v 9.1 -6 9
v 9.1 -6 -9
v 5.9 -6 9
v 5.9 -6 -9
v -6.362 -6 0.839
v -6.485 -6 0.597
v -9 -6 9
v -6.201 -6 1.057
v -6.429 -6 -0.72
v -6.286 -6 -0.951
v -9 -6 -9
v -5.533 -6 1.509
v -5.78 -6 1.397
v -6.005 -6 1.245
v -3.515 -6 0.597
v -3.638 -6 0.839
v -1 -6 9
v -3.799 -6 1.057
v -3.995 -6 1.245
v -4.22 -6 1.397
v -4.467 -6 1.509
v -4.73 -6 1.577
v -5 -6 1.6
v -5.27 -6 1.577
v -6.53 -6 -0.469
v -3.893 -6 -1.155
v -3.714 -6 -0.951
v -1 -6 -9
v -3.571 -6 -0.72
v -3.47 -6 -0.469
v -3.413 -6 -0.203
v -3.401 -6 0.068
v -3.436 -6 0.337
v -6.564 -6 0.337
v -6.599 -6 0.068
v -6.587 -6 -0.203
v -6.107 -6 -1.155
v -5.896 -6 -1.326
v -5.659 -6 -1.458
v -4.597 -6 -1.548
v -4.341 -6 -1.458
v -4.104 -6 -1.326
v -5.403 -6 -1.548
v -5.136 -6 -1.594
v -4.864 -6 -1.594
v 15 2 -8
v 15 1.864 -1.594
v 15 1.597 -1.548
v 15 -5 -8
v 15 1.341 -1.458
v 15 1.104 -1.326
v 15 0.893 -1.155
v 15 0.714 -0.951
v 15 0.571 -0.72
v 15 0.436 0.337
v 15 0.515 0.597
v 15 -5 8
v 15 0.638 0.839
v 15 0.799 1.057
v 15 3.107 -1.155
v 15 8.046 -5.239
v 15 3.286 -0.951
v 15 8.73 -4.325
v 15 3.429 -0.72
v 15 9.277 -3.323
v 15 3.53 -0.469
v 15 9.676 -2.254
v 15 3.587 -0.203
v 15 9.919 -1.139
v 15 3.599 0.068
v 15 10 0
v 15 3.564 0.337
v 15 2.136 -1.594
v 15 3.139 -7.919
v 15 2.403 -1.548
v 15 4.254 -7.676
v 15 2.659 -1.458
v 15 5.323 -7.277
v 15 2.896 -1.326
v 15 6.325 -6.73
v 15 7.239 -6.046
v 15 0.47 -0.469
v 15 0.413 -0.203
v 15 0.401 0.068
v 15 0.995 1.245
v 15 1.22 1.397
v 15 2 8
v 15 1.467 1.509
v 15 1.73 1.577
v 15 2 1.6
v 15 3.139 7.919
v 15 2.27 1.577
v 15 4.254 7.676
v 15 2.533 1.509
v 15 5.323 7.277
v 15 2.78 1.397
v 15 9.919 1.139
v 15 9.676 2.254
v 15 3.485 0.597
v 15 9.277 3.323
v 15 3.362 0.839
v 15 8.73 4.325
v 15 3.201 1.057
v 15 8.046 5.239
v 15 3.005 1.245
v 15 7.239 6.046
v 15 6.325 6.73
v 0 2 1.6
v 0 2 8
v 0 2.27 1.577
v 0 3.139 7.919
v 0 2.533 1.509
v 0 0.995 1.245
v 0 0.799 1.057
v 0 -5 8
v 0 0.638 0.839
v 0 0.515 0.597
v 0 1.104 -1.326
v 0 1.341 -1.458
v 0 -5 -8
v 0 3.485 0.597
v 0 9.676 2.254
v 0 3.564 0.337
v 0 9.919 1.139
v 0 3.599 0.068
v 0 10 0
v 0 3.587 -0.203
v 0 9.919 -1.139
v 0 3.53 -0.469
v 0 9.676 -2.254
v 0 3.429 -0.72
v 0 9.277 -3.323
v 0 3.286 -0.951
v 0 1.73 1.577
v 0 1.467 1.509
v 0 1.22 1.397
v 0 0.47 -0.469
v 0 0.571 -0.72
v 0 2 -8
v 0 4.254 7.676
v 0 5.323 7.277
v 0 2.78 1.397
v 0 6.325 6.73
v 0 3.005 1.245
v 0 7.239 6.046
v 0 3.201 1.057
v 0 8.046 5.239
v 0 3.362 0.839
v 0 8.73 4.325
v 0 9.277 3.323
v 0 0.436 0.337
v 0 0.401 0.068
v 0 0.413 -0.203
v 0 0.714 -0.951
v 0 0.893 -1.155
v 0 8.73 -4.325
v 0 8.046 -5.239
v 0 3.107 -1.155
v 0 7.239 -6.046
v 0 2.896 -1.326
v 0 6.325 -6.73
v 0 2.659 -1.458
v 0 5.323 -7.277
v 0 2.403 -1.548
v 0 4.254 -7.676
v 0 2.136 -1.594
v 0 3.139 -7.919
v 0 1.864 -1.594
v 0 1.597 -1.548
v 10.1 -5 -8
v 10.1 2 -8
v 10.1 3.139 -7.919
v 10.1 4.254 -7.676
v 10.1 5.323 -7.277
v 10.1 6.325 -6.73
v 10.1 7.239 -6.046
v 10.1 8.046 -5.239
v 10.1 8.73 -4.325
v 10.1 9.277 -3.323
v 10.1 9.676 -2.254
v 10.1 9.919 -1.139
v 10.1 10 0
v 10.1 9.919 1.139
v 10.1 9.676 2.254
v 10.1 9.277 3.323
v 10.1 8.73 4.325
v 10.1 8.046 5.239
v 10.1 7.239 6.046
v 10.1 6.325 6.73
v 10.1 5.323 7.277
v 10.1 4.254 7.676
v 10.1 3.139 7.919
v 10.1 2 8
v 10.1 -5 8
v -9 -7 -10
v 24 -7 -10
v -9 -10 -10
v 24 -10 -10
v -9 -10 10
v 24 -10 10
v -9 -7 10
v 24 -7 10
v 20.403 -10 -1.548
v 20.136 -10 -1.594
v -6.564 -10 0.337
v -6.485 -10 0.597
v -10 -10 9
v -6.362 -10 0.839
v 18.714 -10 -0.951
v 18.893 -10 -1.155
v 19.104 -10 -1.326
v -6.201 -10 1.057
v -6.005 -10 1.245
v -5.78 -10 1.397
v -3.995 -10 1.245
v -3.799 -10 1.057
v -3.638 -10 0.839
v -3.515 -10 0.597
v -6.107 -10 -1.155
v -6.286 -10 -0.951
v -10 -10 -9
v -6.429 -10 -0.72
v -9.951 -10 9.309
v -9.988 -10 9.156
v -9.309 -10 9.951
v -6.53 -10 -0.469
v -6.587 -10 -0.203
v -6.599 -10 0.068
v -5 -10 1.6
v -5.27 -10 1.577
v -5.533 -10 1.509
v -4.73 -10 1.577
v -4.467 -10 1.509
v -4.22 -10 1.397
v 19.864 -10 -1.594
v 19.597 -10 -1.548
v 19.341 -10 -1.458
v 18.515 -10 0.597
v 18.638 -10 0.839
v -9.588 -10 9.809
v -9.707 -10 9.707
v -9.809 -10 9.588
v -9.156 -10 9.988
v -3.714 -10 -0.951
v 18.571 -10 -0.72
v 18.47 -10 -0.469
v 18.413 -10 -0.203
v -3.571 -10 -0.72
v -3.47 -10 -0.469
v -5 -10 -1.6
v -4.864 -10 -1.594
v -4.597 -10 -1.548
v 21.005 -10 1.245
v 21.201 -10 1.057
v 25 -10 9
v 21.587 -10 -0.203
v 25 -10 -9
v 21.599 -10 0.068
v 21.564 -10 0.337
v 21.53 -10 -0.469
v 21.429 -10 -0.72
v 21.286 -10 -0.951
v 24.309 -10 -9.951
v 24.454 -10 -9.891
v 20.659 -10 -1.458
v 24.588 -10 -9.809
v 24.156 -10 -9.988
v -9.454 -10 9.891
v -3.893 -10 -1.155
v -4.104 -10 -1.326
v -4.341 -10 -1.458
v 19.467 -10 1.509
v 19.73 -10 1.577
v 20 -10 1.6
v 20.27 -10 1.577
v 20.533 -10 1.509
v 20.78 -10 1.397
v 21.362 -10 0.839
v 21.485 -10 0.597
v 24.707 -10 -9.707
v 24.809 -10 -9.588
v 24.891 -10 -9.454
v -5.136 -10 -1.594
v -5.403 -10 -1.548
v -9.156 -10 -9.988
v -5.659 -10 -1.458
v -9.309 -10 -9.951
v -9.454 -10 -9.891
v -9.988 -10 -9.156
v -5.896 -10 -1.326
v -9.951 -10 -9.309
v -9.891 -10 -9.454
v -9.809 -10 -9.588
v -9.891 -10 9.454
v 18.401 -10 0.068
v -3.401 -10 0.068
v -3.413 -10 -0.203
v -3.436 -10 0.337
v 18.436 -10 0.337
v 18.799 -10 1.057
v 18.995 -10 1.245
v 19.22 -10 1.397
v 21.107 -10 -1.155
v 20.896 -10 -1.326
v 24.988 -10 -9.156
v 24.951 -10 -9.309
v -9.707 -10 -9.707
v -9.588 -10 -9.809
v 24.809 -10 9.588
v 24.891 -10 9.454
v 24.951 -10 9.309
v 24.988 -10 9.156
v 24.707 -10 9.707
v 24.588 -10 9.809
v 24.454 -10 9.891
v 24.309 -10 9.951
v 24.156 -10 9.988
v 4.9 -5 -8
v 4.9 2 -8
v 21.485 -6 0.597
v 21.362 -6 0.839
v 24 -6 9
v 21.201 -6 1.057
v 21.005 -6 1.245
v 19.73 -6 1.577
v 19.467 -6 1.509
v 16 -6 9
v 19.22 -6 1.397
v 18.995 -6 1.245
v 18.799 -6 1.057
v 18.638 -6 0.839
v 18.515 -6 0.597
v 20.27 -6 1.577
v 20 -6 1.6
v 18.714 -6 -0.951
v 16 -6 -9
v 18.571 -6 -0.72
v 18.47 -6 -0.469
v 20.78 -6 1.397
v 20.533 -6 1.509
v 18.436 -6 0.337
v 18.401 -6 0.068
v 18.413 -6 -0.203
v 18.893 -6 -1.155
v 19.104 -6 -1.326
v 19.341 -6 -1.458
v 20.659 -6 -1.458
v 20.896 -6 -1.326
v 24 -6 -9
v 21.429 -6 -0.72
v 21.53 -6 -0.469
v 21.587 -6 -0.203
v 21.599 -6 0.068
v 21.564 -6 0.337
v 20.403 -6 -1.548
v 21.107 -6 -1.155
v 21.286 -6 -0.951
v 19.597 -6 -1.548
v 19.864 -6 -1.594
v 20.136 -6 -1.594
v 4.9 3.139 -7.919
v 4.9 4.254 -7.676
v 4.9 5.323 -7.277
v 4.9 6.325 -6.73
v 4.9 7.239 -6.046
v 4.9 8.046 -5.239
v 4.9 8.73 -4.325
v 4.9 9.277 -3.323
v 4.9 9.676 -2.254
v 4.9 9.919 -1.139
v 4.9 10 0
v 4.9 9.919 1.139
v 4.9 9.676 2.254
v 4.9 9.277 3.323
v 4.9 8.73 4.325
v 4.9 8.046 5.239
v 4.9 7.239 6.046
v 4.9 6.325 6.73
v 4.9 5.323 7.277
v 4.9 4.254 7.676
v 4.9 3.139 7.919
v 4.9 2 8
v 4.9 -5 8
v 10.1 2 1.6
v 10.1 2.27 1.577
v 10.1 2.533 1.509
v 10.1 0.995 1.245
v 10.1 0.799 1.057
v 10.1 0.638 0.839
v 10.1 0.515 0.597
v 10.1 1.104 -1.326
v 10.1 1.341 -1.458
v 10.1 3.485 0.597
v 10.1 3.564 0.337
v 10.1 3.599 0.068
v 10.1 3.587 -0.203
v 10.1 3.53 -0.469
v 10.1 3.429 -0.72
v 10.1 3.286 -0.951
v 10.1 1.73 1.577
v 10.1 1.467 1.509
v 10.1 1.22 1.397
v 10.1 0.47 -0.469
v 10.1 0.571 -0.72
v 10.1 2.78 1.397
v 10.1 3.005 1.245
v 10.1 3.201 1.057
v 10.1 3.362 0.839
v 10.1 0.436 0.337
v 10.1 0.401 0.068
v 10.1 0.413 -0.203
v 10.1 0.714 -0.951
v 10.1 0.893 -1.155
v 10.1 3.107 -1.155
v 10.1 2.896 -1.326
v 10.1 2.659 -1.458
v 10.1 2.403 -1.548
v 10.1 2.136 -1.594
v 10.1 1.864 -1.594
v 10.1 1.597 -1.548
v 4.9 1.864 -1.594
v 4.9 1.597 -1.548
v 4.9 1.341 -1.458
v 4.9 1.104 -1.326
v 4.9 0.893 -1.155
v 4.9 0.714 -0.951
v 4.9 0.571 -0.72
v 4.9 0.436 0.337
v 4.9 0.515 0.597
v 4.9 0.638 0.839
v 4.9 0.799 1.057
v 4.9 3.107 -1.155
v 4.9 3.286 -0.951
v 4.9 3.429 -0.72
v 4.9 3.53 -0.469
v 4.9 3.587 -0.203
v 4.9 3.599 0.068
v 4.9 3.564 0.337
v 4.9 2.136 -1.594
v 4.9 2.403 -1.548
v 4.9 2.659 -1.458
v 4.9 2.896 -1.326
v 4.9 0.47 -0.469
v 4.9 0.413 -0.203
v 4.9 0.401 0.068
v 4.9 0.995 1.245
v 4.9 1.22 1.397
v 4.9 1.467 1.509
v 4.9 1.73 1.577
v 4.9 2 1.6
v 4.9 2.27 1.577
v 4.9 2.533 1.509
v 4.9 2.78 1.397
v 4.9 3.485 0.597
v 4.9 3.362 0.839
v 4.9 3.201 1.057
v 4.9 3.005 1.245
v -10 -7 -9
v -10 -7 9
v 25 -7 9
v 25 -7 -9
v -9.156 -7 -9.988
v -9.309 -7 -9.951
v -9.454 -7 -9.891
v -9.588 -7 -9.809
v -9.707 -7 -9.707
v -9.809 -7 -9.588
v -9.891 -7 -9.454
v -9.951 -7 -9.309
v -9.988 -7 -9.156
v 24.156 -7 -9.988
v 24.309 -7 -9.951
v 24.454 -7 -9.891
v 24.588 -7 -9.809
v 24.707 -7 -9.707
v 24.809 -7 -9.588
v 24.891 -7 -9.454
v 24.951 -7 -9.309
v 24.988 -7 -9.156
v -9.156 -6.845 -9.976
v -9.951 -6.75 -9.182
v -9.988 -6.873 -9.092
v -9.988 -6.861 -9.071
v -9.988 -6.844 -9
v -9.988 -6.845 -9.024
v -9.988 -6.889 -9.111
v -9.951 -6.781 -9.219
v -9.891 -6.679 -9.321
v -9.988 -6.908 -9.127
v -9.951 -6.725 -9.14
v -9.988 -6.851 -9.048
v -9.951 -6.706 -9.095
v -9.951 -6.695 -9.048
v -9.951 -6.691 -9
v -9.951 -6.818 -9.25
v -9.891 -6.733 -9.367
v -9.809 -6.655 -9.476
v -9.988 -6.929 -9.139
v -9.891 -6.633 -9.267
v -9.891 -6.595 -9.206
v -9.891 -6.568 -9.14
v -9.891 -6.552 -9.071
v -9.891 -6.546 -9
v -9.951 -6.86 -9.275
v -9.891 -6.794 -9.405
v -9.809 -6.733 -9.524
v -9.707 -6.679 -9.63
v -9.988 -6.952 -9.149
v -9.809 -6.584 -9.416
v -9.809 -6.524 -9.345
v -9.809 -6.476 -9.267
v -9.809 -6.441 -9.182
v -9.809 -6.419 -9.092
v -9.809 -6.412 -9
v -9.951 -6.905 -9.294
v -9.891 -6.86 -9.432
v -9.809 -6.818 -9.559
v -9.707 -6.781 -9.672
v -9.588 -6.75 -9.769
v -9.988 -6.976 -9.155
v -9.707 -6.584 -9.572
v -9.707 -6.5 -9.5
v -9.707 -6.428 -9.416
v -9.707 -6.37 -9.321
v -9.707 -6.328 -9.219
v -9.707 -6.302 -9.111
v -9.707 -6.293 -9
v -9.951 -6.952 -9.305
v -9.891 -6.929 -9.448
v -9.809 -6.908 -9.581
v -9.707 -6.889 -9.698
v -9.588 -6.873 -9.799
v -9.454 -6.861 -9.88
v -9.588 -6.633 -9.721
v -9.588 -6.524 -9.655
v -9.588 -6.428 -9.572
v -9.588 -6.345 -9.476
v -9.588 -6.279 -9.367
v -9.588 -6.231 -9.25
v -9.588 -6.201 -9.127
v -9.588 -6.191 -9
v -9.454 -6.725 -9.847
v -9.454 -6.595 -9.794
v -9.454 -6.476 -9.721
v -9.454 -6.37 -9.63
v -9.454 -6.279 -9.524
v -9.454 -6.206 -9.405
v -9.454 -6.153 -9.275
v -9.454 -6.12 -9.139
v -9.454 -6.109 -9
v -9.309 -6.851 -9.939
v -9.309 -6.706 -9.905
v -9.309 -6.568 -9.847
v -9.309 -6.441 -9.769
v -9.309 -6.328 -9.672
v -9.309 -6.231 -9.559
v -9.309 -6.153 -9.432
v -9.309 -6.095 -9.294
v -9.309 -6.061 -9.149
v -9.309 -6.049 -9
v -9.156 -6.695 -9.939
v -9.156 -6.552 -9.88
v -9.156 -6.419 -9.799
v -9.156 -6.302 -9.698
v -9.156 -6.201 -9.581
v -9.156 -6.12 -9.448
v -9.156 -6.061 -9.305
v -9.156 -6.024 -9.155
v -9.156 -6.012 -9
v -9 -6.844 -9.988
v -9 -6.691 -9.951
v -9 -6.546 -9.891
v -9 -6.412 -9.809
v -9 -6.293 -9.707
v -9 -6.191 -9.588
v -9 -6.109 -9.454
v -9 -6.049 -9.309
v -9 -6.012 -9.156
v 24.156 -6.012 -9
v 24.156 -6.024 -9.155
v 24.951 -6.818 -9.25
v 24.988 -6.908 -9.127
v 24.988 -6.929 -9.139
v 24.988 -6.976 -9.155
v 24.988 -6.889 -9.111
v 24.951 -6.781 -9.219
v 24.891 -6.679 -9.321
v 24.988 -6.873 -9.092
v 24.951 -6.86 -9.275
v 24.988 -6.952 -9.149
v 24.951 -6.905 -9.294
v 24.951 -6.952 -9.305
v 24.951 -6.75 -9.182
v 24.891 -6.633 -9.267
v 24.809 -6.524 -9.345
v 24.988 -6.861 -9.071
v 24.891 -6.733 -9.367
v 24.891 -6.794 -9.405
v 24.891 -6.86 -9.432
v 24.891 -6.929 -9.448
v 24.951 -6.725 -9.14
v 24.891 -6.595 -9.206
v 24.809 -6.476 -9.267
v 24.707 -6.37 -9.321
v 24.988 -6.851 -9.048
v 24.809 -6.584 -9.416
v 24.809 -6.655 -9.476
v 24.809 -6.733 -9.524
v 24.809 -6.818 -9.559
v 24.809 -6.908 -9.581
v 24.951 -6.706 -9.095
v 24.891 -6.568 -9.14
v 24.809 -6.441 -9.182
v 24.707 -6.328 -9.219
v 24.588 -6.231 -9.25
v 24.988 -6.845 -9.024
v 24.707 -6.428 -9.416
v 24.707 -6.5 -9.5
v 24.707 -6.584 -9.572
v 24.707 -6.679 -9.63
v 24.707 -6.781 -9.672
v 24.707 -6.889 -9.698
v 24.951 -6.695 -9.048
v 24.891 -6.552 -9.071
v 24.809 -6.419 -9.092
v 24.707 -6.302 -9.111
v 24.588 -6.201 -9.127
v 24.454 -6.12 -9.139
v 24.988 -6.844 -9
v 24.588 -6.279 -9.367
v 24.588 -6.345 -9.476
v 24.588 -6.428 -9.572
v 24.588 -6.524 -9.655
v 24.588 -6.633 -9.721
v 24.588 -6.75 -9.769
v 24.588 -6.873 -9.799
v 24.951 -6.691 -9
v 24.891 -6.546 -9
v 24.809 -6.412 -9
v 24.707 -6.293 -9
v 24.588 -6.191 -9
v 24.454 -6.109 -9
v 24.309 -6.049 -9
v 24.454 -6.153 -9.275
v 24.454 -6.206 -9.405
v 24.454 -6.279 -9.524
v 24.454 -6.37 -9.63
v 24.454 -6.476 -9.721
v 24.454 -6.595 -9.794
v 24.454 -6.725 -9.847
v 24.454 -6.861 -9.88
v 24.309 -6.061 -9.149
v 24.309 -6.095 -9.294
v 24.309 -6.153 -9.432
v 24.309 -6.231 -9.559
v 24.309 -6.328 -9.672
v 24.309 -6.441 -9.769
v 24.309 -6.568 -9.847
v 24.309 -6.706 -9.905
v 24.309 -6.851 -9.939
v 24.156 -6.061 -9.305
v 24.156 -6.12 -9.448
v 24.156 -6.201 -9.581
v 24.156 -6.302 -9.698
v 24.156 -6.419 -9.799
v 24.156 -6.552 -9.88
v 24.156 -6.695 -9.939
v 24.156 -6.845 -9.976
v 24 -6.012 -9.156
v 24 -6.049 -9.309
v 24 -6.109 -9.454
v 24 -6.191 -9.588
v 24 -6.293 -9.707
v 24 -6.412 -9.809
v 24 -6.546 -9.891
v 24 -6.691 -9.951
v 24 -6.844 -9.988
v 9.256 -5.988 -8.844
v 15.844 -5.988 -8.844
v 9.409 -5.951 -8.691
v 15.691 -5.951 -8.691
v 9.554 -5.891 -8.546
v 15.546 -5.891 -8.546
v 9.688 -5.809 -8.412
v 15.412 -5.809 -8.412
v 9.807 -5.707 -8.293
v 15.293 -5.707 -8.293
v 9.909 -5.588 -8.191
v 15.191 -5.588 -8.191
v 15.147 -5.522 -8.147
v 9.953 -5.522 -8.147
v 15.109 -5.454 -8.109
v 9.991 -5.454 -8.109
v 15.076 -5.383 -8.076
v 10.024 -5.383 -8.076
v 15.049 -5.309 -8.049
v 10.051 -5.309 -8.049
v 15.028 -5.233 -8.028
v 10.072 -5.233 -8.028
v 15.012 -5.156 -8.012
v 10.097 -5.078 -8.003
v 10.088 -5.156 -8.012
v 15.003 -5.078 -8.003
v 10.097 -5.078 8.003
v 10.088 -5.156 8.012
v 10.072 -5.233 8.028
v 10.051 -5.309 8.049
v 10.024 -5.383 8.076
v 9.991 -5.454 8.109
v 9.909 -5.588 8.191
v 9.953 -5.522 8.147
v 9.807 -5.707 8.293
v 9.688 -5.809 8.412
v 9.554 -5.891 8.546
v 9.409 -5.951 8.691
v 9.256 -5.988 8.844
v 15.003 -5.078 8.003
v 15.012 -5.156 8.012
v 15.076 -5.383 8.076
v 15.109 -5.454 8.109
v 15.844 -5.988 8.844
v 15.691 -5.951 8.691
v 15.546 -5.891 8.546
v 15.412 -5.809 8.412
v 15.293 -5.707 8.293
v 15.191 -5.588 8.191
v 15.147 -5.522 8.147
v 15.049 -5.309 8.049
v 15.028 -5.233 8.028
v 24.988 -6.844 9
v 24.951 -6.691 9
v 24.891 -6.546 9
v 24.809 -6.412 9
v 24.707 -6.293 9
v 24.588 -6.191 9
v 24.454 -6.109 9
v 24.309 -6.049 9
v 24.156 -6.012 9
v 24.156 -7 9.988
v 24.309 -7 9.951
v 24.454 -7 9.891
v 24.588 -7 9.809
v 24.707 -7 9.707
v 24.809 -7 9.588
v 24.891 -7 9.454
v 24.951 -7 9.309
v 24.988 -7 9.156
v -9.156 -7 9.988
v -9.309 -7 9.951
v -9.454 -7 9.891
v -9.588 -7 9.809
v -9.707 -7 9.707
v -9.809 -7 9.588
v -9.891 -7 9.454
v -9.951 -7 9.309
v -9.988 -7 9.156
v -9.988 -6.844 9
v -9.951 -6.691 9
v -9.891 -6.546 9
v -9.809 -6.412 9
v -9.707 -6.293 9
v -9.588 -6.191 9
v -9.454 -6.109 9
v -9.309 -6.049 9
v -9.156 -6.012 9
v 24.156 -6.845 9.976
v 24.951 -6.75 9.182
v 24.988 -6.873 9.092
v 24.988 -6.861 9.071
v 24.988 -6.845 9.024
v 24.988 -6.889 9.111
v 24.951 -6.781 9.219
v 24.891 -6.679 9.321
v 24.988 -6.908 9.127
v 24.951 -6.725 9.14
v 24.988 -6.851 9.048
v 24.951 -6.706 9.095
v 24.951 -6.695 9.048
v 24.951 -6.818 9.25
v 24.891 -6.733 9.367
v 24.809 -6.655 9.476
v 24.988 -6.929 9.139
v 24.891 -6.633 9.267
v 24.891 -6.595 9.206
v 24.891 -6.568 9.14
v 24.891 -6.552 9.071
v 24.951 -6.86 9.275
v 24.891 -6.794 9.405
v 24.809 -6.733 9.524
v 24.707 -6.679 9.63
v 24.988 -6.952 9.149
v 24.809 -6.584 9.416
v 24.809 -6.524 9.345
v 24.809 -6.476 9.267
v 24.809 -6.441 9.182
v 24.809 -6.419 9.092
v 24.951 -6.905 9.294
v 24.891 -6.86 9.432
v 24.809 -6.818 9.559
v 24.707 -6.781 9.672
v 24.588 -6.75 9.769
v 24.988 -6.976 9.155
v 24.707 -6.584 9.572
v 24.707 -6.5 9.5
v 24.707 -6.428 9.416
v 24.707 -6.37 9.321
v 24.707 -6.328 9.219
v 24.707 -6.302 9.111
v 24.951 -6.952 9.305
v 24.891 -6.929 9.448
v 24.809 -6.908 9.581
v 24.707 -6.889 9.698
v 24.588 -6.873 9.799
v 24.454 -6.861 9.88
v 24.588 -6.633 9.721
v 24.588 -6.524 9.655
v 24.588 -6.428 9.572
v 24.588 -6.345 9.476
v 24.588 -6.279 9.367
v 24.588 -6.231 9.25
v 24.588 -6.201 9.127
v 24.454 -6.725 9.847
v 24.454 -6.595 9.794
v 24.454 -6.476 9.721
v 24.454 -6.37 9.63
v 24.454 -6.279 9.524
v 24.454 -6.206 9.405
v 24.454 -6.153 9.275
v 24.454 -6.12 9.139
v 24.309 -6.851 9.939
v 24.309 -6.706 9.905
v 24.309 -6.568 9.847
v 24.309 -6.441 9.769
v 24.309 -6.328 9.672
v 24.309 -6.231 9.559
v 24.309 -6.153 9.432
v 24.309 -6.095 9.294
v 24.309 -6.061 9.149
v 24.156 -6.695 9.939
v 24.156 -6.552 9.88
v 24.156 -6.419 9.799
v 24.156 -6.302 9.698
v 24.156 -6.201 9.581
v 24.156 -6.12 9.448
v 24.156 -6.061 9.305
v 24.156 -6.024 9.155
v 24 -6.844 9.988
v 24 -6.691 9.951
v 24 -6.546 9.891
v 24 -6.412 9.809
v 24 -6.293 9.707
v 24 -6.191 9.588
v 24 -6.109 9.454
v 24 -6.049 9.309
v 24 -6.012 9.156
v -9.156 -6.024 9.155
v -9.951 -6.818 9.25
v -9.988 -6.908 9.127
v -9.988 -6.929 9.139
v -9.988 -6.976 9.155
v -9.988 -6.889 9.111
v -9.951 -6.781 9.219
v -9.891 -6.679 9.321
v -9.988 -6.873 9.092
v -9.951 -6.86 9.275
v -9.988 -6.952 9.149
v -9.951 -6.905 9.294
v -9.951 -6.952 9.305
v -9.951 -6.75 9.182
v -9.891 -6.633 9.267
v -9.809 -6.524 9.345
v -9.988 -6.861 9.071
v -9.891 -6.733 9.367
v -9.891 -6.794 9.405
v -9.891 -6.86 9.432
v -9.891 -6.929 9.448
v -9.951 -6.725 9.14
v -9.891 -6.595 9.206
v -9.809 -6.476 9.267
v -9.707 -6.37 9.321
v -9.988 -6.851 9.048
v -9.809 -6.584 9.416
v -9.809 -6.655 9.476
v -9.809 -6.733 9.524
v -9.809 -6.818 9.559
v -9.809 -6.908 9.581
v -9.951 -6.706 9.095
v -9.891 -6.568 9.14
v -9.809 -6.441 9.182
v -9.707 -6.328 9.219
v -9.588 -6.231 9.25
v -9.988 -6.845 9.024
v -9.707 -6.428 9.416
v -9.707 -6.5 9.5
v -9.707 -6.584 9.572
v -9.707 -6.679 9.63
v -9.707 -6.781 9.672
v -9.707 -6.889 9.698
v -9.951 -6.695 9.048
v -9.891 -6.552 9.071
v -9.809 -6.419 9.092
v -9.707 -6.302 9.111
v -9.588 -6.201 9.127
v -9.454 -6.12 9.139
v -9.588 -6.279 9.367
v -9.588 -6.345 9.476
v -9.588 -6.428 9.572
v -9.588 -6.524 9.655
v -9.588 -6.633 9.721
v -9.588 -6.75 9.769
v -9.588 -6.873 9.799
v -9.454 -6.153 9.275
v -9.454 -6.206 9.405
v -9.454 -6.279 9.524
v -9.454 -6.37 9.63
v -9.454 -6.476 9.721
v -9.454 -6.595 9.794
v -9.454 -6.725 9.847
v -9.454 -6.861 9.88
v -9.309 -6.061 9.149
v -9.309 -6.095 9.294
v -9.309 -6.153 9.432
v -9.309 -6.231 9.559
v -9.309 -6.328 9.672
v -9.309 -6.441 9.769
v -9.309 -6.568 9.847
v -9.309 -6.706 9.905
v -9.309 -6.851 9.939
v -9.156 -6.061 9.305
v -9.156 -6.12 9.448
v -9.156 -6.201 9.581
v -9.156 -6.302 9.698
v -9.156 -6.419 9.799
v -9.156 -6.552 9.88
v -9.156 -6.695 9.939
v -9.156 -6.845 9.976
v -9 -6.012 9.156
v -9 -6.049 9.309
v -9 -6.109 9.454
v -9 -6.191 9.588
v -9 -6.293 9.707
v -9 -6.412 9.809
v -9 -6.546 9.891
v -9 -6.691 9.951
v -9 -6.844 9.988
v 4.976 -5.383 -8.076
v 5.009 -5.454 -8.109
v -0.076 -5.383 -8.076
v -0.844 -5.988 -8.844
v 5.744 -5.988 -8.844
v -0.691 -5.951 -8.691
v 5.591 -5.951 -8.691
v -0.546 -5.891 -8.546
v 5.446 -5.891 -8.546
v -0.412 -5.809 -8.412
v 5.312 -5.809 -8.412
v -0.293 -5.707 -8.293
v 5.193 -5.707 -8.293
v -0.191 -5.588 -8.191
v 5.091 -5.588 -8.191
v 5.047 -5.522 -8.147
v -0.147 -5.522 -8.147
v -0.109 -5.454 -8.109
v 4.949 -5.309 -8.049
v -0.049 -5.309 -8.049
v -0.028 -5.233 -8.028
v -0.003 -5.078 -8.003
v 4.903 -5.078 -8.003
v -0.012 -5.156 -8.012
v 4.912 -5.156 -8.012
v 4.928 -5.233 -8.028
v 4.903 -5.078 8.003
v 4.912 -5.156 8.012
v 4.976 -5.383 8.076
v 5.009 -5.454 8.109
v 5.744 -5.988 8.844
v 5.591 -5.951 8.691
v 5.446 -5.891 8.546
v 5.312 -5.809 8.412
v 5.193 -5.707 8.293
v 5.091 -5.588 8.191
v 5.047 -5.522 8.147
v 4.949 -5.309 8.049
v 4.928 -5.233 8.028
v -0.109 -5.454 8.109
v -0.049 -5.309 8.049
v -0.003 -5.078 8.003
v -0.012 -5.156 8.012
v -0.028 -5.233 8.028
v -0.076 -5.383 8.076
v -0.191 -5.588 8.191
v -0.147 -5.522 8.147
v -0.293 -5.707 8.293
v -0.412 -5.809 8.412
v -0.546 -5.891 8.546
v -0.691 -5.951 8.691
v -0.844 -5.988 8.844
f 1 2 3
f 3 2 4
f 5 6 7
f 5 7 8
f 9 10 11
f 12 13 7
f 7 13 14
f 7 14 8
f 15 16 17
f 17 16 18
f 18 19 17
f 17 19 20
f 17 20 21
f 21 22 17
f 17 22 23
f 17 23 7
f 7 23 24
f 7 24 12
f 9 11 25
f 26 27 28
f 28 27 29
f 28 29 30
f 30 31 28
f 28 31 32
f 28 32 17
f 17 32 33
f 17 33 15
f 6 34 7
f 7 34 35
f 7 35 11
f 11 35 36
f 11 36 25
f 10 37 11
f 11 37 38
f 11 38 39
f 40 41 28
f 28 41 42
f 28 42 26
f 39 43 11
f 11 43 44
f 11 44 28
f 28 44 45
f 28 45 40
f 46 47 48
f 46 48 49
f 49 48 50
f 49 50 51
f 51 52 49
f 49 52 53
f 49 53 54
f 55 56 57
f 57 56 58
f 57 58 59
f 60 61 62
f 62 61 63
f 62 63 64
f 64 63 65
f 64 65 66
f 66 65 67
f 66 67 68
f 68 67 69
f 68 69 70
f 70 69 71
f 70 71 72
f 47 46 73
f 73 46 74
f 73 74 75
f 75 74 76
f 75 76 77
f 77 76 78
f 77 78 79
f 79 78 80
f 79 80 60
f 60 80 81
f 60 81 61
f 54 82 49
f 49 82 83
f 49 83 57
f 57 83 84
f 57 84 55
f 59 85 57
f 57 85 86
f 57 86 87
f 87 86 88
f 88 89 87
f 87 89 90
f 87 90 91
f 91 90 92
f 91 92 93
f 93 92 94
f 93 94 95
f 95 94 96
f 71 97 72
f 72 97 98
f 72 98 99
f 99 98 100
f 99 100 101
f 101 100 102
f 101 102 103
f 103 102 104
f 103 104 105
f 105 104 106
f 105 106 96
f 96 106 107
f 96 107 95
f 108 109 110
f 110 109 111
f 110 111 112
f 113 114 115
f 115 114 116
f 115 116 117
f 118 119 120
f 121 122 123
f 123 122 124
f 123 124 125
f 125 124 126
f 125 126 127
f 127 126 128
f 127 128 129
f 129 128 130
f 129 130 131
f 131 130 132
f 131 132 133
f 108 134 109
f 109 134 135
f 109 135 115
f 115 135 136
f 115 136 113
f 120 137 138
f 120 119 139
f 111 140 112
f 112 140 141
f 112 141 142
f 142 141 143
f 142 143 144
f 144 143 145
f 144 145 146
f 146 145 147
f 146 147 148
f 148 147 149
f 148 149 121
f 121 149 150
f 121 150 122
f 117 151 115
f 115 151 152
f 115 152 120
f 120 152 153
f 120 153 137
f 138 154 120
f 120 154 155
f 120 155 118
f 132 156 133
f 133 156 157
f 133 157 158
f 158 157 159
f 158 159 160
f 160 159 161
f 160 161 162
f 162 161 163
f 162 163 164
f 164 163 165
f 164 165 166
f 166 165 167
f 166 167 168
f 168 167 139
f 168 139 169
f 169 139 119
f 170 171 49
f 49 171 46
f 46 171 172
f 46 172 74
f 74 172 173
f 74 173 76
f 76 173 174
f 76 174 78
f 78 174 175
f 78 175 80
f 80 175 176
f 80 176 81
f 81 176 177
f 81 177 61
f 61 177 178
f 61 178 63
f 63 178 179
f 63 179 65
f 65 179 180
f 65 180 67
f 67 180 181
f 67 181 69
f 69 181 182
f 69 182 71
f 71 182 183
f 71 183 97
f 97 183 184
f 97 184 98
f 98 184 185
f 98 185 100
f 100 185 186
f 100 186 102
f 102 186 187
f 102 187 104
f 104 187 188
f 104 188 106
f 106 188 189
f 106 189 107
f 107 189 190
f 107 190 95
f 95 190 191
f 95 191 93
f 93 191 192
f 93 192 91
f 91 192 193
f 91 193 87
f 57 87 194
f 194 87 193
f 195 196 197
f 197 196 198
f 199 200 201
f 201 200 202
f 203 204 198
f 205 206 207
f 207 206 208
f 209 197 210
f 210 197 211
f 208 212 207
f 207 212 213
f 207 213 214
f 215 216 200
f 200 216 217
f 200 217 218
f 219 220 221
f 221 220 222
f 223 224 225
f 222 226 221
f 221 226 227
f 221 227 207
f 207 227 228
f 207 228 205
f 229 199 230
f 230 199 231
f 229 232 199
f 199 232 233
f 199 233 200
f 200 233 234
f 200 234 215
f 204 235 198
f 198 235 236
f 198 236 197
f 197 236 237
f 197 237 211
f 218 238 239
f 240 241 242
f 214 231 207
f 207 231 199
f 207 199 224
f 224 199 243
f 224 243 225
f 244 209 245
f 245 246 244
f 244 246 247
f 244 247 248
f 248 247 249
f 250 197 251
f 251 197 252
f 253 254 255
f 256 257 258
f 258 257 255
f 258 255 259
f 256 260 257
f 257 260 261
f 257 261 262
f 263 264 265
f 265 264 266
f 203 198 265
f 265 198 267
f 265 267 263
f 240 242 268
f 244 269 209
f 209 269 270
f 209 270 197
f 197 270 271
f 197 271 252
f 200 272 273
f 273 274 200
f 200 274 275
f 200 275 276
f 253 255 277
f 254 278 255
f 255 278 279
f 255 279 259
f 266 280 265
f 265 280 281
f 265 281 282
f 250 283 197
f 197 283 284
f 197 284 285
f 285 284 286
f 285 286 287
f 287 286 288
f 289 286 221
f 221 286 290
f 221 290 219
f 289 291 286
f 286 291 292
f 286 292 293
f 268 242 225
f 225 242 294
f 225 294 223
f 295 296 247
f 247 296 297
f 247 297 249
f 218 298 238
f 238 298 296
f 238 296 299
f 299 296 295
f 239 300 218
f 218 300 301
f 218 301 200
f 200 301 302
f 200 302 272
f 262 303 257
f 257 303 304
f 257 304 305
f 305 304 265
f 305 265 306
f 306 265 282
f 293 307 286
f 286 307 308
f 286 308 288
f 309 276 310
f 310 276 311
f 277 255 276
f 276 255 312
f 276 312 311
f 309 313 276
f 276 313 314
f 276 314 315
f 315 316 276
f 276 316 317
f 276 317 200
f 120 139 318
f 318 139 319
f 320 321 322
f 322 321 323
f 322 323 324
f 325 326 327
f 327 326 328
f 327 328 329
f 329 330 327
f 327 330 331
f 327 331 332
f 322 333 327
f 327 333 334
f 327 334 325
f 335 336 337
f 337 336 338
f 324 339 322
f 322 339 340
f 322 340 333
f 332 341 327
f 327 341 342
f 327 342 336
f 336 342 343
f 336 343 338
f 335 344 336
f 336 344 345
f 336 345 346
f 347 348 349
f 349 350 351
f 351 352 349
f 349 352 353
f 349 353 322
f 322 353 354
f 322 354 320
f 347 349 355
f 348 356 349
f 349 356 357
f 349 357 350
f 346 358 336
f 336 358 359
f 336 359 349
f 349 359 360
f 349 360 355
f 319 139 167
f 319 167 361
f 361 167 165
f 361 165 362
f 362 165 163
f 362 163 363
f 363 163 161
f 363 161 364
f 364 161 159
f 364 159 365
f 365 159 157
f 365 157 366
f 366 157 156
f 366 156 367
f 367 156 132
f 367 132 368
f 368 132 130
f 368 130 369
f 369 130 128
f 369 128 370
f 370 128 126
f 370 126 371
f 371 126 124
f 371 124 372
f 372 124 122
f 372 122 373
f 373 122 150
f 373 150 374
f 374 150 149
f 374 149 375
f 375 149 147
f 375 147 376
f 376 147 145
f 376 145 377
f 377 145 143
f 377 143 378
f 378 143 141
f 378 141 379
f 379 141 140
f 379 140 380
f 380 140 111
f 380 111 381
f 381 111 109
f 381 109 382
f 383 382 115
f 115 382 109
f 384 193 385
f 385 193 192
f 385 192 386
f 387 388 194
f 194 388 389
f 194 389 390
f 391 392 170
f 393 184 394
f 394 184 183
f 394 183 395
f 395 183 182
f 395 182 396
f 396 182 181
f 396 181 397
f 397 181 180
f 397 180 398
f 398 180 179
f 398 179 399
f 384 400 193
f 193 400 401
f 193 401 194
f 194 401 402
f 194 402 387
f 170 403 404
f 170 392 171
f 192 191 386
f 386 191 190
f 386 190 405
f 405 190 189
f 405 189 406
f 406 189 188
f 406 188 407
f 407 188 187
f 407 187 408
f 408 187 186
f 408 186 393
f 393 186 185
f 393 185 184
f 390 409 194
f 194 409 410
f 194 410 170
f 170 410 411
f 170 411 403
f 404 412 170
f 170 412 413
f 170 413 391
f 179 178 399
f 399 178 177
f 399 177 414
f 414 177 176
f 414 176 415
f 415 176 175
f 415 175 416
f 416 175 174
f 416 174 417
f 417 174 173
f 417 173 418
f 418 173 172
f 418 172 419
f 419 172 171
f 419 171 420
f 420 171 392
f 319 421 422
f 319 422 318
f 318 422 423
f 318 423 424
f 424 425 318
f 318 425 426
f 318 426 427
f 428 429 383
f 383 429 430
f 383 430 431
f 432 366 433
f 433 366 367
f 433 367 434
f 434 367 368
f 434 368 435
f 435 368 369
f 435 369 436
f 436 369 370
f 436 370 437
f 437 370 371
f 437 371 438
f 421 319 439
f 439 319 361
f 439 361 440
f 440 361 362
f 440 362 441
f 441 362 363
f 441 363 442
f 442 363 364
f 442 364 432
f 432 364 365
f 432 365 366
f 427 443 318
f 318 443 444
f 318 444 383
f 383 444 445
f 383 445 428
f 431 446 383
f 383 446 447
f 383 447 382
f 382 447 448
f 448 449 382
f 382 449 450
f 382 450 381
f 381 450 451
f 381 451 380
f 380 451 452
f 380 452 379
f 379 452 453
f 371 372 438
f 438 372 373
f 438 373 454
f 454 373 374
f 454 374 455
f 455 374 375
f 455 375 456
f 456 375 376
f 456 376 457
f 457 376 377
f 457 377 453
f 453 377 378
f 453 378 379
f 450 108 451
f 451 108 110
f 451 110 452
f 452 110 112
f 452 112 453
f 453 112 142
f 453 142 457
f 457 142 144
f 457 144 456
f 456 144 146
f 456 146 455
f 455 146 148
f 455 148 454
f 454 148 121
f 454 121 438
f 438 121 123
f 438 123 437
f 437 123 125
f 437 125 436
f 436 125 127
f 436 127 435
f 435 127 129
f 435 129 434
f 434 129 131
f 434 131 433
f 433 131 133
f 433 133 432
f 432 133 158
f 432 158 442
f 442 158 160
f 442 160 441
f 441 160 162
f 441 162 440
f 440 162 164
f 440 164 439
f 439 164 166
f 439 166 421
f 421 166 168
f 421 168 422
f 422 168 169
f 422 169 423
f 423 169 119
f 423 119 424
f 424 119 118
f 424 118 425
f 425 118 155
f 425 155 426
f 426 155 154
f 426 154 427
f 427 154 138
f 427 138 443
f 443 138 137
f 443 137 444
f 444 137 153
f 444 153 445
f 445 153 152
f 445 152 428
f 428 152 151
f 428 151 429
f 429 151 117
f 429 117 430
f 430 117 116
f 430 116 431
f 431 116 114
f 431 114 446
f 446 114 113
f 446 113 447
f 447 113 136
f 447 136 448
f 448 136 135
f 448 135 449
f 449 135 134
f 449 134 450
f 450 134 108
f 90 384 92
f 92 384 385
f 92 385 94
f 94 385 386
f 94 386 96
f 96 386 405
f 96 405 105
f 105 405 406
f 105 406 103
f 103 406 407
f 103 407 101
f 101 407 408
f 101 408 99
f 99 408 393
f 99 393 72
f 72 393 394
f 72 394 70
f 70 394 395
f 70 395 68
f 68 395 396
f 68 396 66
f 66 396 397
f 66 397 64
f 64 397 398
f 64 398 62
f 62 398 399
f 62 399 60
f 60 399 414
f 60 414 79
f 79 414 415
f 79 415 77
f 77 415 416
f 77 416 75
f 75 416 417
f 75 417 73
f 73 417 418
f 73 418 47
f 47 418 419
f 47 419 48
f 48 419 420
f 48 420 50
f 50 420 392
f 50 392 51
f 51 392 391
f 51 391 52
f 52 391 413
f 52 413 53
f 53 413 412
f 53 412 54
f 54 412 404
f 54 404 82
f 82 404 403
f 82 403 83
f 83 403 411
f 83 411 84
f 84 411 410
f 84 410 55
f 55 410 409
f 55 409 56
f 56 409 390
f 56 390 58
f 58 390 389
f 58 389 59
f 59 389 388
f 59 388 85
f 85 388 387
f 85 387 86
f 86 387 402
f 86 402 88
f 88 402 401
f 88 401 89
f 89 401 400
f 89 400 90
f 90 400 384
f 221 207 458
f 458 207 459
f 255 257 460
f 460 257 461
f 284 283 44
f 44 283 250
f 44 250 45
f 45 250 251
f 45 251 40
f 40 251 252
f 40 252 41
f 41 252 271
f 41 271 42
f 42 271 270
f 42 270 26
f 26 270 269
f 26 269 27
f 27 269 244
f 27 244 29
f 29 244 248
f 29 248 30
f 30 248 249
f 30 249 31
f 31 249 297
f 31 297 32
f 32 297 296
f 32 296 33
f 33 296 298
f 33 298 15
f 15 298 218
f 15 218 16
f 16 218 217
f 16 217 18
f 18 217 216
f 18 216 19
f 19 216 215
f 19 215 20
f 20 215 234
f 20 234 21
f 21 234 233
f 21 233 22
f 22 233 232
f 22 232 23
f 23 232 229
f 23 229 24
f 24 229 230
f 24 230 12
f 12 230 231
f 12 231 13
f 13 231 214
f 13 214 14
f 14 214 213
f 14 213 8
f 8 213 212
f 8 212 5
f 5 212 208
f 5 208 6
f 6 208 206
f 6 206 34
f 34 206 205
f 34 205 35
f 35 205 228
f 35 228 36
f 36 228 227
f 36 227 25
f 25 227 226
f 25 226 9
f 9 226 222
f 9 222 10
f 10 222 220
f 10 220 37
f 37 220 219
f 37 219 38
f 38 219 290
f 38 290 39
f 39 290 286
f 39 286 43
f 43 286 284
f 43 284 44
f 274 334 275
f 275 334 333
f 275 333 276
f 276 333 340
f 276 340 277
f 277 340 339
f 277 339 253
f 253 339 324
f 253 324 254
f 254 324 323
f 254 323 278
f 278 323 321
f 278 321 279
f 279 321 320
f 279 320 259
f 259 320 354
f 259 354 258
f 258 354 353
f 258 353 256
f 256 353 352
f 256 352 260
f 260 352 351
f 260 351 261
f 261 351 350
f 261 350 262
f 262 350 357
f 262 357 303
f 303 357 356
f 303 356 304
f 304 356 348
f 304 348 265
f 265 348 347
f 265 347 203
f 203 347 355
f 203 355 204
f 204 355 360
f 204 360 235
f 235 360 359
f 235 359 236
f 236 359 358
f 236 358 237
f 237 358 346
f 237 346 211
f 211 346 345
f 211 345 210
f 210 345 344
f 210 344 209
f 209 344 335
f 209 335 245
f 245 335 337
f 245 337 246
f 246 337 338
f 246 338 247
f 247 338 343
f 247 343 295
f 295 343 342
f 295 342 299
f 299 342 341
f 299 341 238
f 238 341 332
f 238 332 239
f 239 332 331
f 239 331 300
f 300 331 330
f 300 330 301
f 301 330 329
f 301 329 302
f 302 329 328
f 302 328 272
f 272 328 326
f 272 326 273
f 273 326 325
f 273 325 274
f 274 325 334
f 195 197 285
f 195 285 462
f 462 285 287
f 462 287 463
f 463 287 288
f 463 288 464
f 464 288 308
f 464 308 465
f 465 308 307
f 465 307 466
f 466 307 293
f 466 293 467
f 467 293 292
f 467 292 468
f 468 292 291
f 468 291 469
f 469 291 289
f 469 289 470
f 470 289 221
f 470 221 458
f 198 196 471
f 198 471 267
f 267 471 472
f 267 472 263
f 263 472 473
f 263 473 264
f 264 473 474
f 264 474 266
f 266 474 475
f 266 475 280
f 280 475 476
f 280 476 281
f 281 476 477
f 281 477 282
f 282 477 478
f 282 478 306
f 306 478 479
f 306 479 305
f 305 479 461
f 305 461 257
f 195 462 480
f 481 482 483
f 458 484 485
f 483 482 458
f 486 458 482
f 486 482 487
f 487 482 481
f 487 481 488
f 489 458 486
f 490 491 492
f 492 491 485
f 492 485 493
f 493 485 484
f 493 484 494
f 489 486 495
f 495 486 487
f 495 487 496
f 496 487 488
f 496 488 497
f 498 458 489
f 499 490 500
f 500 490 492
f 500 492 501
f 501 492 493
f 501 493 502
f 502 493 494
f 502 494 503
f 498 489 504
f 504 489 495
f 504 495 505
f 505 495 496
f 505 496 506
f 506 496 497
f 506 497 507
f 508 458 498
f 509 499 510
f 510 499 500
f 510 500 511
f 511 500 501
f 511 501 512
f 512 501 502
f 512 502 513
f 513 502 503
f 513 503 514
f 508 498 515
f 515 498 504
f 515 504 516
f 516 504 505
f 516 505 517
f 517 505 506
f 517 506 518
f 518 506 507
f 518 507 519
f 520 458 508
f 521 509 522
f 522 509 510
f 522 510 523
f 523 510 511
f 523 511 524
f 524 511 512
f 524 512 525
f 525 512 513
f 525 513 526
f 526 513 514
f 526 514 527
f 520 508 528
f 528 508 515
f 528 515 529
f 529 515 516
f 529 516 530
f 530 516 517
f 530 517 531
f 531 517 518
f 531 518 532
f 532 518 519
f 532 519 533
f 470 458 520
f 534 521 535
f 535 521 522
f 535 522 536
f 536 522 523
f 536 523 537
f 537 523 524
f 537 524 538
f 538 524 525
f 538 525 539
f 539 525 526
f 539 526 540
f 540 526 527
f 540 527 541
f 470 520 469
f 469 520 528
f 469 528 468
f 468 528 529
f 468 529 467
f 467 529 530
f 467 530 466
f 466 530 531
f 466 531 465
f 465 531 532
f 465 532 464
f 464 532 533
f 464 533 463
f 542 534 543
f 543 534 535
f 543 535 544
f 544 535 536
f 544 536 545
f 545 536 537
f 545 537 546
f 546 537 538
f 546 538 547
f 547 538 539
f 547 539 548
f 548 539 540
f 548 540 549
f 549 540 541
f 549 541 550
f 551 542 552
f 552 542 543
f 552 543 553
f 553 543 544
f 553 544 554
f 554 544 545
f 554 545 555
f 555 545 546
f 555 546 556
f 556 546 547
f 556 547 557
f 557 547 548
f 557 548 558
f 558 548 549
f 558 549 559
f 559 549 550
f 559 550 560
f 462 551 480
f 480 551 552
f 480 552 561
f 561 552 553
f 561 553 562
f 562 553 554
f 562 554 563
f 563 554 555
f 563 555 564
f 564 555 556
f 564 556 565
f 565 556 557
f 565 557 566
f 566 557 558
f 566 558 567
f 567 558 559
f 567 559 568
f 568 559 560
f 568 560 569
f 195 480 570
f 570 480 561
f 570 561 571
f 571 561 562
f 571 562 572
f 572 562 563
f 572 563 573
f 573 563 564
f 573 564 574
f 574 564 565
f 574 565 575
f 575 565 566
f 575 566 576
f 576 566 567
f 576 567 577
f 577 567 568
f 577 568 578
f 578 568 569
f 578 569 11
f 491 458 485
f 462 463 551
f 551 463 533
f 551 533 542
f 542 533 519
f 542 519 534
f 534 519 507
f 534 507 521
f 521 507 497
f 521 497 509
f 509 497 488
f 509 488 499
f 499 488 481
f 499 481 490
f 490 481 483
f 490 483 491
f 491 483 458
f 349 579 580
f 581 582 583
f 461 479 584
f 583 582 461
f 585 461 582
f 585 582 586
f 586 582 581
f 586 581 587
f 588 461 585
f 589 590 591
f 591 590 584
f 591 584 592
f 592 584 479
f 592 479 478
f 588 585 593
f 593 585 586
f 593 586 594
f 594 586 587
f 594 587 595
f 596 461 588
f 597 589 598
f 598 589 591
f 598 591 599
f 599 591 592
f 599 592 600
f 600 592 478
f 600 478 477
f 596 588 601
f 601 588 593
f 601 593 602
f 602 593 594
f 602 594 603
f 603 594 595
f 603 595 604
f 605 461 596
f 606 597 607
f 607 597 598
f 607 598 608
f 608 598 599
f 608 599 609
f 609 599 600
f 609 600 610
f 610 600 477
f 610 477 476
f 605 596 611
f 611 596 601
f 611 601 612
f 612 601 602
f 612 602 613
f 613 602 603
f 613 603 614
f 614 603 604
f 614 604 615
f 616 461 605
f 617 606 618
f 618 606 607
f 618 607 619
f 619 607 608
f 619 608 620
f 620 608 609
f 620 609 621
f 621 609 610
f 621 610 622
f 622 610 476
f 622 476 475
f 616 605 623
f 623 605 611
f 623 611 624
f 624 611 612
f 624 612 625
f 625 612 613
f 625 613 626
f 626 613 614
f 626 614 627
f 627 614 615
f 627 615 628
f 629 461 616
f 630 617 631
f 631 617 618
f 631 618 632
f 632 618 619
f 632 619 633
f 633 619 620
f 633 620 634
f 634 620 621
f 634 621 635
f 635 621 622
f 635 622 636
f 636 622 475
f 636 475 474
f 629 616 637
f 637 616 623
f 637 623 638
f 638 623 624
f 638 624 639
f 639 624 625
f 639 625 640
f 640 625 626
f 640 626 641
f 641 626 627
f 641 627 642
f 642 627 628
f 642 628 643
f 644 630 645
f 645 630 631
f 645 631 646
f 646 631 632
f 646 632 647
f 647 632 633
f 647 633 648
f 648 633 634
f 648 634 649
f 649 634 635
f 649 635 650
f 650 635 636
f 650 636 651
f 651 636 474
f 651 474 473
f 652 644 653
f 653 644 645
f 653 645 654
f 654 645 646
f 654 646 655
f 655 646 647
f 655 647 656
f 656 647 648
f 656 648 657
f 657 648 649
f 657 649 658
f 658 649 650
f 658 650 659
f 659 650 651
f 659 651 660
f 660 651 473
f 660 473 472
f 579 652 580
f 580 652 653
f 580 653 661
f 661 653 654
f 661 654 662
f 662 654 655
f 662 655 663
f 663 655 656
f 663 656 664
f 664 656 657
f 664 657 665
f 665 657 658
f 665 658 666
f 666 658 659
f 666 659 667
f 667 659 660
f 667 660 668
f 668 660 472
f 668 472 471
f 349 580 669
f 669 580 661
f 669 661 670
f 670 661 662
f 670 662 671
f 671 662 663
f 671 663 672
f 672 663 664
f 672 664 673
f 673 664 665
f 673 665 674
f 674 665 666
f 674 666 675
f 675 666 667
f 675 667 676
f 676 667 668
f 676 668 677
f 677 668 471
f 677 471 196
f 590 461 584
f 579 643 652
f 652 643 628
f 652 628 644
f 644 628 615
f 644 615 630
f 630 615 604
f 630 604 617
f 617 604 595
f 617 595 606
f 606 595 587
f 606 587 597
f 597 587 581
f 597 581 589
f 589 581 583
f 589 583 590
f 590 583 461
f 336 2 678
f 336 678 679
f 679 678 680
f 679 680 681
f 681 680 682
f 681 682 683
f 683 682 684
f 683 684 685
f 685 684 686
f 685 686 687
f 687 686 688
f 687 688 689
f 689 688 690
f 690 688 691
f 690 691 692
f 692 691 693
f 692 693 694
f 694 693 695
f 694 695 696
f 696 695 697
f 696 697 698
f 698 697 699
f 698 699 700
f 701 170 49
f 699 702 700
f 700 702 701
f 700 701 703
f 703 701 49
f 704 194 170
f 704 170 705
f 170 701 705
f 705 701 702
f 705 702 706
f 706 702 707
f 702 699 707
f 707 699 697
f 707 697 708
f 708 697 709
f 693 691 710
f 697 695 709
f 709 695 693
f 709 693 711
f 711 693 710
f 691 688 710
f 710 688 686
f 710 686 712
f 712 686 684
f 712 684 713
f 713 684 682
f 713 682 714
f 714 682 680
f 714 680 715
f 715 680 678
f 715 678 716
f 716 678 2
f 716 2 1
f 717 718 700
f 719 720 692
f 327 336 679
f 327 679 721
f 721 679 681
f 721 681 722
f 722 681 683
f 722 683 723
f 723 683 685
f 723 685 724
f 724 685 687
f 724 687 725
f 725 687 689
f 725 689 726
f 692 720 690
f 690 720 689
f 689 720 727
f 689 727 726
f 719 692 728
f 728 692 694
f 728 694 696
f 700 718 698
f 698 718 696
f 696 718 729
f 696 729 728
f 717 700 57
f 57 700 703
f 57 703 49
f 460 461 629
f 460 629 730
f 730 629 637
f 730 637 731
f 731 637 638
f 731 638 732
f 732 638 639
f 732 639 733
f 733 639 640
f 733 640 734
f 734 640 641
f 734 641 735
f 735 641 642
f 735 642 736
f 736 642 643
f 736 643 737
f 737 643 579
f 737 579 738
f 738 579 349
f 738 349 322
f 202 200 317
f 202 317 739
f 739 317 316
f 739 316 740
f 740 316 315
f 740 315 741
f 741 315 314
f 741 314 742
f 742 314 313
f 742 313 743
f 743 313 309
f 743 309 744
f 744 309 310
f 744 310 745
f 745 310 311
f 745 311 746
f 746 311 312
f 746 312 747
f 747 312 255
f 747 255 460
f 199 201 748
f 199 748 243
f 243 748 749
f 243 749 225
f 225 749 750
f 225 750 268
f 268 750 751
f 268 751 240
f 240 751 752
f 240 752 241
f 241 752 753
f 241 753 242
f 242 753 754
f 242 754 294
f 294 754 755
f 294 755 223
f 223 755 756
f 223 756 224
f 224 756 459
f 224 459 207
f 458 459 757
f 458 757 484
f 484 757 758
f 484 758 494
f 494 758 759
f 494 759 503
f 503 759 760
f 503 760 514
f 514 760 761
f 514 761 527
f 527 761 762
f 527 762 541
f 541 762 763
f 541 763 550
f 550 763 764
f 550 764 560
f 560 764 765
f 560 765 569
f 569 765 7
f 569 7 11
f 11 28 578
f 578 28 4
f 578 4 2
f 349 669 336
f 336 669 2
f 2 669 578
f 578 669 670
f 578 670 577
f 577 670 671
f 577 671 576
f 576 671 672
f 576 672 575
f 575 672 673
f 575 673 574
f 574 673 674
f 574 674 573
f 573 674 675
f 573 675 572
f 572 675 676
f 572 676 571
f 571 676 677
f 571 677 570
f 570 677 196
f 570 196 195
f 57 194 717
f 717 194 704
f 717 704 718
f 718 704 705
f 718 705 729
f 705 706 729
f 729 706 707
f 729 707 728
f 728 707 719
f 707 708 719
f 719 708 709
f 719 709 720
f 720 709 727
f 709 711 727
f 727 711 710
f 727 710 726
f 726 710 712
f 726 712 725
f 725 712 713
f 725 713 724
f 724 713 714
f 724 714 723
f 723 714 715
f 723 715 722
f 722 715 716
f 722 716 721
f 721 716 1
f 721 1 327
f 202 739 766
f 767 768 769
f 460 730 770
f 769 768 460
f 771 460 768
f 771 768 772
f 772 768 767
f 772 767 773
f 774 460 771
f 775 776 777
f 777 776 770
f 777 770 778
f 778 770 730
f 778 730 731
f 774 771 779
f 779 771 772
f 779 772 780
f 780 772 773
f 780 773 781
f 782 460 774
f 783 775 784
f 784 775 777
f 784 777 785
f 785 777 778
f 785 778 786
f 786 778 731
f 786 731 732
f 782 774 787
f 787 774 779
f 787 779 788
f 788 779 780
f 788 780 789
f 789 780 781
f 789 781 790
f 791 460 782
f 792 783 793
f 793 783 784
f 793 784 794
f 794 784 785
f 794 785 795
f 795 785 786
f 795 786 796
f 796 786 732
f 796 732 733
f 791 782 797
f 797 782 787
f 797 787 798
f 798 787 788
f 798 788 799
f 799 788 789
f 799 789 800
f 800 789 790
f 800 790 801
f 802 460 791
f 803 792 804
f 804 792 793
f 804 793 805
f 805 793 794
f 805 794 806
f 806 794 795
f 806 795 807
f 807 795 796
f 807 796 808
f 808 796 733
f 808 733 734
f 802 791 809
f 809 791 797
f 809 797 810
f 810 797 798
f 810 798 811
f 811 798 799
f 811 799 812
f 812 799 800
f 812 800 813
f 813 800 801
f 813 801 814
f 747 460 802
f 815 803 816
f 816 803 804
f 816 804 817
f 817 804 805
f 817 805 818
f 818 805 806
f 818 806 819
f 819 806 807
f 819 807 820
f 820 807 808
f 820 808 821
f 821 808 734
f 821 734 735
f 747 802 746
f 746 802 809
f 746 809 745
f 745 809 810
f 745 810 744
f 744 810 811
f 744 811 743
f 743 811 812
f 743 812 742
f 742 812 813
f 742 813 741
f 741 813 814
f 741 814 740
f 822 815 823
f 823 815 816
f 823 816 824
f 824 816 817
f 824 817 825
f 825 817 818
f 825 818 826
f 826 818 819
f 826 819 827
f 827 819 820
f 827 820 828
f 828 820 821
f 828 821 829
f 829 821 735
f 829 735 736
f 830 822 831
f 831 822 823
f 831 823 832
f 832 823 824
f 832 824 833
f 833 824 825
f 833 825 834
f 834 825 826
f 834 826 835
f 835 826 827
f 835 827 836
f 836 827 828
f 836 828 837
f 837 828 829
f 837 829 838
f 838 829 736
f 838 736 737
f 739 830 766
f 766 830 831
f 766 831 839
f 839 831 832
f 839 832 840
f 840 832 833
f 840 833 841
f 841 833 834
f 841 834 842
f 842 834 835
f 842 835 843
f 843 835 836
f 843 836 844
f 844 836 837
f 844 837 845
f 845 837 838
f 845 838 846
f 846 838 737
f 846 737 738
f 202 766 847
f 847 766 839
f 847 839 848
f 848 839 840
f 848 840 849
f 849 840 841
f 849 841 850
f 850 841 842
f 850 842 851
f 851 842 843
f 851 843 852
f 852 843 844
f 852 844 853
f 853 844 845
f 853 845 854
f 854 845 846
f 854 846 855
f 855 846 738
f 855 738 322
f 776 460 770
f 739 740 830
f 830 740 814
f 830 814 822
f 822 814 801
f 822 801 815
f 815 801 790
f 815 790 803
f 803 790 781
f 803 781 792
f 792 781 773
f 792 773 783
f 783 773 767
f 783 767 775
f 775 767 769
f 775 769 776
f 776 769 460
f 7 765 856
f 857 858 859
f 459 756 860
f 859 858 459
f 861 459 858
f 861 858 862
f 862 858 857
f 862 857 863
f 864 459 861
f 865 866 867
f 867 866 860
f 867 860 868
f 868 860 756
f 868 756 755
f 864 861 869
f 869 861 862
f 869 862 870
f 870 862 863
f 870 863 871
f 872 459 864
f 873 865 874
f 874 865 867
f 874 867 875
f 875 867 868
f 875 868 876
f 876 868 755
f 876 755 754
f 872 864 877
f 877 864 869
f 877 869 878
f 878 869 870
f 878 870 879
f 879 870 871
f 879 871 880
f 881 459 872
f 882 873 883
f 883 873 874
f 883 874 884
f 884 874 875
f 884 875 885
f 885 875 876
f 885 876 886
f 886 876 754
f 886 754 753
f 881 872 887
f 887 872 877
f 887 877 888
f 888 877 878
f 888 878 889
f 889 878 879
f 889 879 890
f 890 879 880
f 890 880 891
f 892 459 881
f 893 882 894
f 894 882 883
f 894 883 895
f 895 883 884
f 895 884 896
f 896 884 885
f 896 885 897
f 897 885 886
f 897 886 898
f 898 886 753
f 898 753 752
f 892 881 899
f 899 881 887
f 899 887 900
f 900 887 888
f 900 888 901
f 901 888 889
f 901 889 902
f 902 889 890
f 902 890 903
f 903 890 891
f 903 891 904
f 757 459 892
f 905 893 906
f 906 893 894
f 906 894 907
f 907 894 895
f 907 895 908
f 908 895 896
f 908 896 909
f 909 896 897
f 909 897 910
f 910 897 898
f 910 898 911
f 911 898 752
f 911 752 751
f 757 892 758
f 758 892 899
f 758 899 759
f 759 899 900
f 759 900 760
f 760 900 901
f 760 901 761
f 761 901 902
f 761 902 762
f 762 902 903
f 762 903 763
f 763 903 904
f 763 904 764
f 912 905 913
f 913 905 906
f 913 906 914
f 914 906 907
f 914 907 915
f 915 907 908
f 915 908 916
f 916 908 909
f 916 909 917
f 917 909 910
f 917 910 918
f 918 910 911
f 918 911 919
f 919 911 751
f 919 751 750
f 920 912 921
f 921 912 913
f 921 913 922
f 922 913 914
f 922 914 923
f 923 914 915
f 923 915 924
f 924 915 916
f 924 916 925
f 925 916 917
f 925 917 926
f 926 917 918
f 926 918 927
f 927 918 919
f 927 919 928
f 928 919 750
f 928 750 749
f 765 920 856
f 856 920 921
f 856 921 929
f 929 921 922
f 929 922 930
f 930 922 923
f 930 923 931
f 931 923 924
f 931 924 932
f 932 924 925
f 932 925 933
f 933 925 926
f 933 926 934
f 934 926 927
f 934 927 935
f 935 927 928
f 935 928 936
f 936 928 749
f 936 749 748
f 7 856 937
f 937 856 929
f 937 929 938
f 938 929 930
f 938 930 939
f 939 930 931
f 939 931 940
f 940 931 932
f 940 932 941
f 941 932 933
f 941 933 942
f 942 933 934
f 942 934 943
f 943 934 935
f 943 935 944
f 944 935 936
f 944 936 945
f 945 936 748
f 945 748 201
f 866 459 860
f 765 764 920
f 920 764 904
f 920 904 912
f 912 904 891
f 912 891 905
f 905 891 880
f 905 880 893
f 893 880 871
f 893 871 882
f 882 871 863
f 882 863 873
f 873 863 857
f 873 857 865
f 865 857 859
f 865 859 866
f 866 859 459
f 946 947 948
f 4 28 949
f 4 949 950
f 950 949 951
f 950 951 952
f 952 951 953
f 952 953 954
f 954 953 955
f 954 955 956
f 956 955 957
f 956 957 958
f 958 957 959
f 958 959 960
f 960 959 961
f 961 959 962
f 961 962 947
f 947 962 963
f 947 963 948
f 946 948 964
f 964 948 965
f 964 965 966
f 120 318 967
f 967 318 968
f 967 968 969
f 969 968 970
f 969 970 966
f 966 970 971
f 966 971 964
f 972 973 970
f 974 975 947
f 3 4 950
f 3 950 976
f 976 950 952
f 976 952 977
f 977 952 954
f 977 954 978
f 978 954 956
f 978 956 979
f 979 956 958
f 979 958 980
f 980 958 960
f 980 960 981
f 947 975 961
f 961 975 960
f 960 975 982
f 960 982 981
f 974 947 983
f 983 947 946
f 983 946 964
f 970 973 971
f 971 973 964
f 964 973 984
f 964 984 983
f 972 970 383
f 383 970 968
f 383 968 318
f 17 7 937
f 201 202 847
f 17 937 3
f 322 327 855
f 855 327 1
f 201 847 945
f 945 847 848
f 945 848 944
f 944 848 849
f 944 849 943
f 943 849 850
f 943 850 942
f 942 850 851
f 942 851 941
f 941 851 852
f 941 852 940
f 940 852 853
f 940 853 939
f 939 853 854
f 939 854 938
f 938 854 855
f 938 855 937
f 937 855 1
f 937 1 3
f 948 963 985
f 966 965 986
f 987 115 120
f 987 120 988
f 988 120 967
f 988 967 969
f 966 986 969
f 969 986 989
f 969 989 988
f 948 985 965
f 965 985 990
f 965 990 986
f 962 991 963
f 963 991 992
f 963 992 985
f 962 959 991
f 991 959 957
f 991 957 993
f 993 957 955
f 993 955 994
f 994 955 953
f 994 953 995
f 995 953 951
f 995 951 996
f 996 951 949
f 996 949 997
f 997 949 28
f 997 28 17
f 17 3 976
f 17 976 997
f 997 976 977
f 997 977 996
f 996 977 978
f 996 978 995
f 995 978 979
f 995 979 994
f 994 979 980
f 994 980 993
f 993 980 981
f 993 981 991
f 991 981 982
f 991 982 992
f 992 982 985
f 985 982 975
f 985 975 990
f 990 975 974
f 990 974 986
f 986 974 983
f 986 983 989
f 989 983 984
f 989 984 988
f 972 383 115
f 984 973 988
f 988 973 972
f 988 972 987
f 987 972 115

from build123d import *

# Parameters (mm, degrees)
SKETCH1_W               = 20
SKETCH1_H               = 20
BOSS_EXTRUDE1_DEPTH     = 15
CUT_EXTRUDE1_DEPTH      = 17.007810594
CUT_EXTRUDE1_DEPTH_BACK = 17.007810594
SKETCH3_W               = 20
SKETCH3_H               = 16
CUT_EXTRUDE2_DEPTH      = 2.6
CUT_EXTRUDE3_DEPTH      = 17.007810594
CUT_EXTRUDE3_DEPTH_BACK = 17.007810594
SKETCH4_R               = 1.6
SKETCH5_W               = 20
SKETCH5_H               = 4
BOSS_EXTRUDE2_DEPTH     = 17.5
CUT_EXTRUDE4_DEPTH      = 32.320919527
CUT_EXTRUDE4_DEPTH_BACK = 32.320919527
SKETCH6_R               = 1.6
FILLET4_R               = 1


with BuildPart() as part:
    # Sketch1 → Boss-Extrude1 (new body)
    with BuildSketch(Plane.YZ):
        Rectangle(SKETCH1_W, SKETCH1_H)
    extrude(amount=BOSS_EXTRUDE1_DEPTH)

    # Sketch2 → Cut-Extrude1 (cut, two sides: drawn at the far end of the back side and taken through both)
    with BuildSketch(Plane.ZY.offset(-7.5).offset(-CUT_EXTRUDE1_DEPTH_BACK)):
        with BuildLine():
            Line((-10, 10), (-10, 0))
            Line((-10, 0), (-10, -6))
            Line((-10, -6), (-8, -6))
            Line((-8, -6), (-8, 2))
            ThreePointArc((-8, 2), (-5.656854249, 7.656854249), (0, 10))
            Line((0, 10), (-10, 10))
        make_face()
        with BuildLine():
            Line((10, 10), (0, 10))
            ThreePointArc((0, 10), (5.656854249, 7.656854249), (8, 2))
            Line((8, 2), (8, -6))
            Line((8, -6), (10, -6))
            Line((10, -6), (10, 0))
            Line((10, 0), (10, 10))
        make_face()
    extrude(amount=CUT_EXTRUDE1_DEPTH + CUT_EXTRUDE1_DEPTH_BACK, mode=Mode.SUBTRACT)

    # Sketch3 → Cut-Extrude2 (cut, symmetric)
    with BuildSketch(Plane.ZY.offset(-7.5)):
        with Locations((0, 2)):
            Rectangle(SKETCH3_W, SKETCH3_H)
    extrude(amount=CUT_EXTRUDE2_DEPTH, both=True, mode=Mode.SUBTRACT)

    # Sketch4 → Cut-Extrude3 (cut, two sides: drawn at the far end of the back side and taken through both)
    with BuildSketch(Plane.ZY.offset(-7.5).offset(-CUT_EXTRUDE3_DEPTH_BACK)):
        with Locations((0, 2)):
            Circle(SKETCH4_R)
    extrude(amount=CUT_EXTRUDE3_DEPTH + CUT_EXTRUDE3_DEPTH_BACK, mode=Mode.SUBTRACT)

    # Sketch5 → Boss-Extrude2 (add, symmetric)
    with BuildSketch(Plane.ZY.offset(-7.5)):
        with Locations((0, -8)):
            Rectangle(SKETCH5_W, SKETCH5_H)
    extrude(amount=BOSS_EXTRUDE2_DEPTH, both=True)

    # Sketch6 → Cut-Extrude4 (cut, two sides: drawn at the far end of the back side and taken through both)
    with BuildSketch(Plane(origin=(0, -6, 0), x_dir=(1, 0, 0), z_dir=(0, 1, 0)).offset(-CUT_EXTRUDE4_DEPTH_BACK)):
        with Locations(Location((20, 0, 0), (0, 0, 270))):
            Circle(SKETCH6_R)
        with Locations(Location((-5, 0, 0), (0, 0, 270))):
            Circle(SKETCH6_R)
    extrude(amount=CUT_EXTRUDE4_DEPTH + CUT_EXTRUDE4_DEPTH_BACK, mode=Mode.SUBTRACT)

    # Fillet4
    fillet4_edges = [part.edges().sort_by_distance(p)[0] for p in [
        (12.55, -6, -8),
        (7.5, -6, -10),
        (7.5, -6, 10),
        (12.55, -6, 8),
        (2.45, -6, 8),
        (2.45, -6, -8),
        (10.1, -6, 0),
        (4.9, -6, 0),
        (0, -6, 0),
        (15, -6, 0),
        (25, -6, 0),
        (25, -8, -10),
        (25, -8, 10),
        (-10, -8, -10),
        (-10, -8, 10),
        (-10, -6, 0),
    ]]
    fillet(fillet4_edges, radius=FILLET4_R - 0.0001)  # a hair under: the kernel refuses the full size


solid = part.part
